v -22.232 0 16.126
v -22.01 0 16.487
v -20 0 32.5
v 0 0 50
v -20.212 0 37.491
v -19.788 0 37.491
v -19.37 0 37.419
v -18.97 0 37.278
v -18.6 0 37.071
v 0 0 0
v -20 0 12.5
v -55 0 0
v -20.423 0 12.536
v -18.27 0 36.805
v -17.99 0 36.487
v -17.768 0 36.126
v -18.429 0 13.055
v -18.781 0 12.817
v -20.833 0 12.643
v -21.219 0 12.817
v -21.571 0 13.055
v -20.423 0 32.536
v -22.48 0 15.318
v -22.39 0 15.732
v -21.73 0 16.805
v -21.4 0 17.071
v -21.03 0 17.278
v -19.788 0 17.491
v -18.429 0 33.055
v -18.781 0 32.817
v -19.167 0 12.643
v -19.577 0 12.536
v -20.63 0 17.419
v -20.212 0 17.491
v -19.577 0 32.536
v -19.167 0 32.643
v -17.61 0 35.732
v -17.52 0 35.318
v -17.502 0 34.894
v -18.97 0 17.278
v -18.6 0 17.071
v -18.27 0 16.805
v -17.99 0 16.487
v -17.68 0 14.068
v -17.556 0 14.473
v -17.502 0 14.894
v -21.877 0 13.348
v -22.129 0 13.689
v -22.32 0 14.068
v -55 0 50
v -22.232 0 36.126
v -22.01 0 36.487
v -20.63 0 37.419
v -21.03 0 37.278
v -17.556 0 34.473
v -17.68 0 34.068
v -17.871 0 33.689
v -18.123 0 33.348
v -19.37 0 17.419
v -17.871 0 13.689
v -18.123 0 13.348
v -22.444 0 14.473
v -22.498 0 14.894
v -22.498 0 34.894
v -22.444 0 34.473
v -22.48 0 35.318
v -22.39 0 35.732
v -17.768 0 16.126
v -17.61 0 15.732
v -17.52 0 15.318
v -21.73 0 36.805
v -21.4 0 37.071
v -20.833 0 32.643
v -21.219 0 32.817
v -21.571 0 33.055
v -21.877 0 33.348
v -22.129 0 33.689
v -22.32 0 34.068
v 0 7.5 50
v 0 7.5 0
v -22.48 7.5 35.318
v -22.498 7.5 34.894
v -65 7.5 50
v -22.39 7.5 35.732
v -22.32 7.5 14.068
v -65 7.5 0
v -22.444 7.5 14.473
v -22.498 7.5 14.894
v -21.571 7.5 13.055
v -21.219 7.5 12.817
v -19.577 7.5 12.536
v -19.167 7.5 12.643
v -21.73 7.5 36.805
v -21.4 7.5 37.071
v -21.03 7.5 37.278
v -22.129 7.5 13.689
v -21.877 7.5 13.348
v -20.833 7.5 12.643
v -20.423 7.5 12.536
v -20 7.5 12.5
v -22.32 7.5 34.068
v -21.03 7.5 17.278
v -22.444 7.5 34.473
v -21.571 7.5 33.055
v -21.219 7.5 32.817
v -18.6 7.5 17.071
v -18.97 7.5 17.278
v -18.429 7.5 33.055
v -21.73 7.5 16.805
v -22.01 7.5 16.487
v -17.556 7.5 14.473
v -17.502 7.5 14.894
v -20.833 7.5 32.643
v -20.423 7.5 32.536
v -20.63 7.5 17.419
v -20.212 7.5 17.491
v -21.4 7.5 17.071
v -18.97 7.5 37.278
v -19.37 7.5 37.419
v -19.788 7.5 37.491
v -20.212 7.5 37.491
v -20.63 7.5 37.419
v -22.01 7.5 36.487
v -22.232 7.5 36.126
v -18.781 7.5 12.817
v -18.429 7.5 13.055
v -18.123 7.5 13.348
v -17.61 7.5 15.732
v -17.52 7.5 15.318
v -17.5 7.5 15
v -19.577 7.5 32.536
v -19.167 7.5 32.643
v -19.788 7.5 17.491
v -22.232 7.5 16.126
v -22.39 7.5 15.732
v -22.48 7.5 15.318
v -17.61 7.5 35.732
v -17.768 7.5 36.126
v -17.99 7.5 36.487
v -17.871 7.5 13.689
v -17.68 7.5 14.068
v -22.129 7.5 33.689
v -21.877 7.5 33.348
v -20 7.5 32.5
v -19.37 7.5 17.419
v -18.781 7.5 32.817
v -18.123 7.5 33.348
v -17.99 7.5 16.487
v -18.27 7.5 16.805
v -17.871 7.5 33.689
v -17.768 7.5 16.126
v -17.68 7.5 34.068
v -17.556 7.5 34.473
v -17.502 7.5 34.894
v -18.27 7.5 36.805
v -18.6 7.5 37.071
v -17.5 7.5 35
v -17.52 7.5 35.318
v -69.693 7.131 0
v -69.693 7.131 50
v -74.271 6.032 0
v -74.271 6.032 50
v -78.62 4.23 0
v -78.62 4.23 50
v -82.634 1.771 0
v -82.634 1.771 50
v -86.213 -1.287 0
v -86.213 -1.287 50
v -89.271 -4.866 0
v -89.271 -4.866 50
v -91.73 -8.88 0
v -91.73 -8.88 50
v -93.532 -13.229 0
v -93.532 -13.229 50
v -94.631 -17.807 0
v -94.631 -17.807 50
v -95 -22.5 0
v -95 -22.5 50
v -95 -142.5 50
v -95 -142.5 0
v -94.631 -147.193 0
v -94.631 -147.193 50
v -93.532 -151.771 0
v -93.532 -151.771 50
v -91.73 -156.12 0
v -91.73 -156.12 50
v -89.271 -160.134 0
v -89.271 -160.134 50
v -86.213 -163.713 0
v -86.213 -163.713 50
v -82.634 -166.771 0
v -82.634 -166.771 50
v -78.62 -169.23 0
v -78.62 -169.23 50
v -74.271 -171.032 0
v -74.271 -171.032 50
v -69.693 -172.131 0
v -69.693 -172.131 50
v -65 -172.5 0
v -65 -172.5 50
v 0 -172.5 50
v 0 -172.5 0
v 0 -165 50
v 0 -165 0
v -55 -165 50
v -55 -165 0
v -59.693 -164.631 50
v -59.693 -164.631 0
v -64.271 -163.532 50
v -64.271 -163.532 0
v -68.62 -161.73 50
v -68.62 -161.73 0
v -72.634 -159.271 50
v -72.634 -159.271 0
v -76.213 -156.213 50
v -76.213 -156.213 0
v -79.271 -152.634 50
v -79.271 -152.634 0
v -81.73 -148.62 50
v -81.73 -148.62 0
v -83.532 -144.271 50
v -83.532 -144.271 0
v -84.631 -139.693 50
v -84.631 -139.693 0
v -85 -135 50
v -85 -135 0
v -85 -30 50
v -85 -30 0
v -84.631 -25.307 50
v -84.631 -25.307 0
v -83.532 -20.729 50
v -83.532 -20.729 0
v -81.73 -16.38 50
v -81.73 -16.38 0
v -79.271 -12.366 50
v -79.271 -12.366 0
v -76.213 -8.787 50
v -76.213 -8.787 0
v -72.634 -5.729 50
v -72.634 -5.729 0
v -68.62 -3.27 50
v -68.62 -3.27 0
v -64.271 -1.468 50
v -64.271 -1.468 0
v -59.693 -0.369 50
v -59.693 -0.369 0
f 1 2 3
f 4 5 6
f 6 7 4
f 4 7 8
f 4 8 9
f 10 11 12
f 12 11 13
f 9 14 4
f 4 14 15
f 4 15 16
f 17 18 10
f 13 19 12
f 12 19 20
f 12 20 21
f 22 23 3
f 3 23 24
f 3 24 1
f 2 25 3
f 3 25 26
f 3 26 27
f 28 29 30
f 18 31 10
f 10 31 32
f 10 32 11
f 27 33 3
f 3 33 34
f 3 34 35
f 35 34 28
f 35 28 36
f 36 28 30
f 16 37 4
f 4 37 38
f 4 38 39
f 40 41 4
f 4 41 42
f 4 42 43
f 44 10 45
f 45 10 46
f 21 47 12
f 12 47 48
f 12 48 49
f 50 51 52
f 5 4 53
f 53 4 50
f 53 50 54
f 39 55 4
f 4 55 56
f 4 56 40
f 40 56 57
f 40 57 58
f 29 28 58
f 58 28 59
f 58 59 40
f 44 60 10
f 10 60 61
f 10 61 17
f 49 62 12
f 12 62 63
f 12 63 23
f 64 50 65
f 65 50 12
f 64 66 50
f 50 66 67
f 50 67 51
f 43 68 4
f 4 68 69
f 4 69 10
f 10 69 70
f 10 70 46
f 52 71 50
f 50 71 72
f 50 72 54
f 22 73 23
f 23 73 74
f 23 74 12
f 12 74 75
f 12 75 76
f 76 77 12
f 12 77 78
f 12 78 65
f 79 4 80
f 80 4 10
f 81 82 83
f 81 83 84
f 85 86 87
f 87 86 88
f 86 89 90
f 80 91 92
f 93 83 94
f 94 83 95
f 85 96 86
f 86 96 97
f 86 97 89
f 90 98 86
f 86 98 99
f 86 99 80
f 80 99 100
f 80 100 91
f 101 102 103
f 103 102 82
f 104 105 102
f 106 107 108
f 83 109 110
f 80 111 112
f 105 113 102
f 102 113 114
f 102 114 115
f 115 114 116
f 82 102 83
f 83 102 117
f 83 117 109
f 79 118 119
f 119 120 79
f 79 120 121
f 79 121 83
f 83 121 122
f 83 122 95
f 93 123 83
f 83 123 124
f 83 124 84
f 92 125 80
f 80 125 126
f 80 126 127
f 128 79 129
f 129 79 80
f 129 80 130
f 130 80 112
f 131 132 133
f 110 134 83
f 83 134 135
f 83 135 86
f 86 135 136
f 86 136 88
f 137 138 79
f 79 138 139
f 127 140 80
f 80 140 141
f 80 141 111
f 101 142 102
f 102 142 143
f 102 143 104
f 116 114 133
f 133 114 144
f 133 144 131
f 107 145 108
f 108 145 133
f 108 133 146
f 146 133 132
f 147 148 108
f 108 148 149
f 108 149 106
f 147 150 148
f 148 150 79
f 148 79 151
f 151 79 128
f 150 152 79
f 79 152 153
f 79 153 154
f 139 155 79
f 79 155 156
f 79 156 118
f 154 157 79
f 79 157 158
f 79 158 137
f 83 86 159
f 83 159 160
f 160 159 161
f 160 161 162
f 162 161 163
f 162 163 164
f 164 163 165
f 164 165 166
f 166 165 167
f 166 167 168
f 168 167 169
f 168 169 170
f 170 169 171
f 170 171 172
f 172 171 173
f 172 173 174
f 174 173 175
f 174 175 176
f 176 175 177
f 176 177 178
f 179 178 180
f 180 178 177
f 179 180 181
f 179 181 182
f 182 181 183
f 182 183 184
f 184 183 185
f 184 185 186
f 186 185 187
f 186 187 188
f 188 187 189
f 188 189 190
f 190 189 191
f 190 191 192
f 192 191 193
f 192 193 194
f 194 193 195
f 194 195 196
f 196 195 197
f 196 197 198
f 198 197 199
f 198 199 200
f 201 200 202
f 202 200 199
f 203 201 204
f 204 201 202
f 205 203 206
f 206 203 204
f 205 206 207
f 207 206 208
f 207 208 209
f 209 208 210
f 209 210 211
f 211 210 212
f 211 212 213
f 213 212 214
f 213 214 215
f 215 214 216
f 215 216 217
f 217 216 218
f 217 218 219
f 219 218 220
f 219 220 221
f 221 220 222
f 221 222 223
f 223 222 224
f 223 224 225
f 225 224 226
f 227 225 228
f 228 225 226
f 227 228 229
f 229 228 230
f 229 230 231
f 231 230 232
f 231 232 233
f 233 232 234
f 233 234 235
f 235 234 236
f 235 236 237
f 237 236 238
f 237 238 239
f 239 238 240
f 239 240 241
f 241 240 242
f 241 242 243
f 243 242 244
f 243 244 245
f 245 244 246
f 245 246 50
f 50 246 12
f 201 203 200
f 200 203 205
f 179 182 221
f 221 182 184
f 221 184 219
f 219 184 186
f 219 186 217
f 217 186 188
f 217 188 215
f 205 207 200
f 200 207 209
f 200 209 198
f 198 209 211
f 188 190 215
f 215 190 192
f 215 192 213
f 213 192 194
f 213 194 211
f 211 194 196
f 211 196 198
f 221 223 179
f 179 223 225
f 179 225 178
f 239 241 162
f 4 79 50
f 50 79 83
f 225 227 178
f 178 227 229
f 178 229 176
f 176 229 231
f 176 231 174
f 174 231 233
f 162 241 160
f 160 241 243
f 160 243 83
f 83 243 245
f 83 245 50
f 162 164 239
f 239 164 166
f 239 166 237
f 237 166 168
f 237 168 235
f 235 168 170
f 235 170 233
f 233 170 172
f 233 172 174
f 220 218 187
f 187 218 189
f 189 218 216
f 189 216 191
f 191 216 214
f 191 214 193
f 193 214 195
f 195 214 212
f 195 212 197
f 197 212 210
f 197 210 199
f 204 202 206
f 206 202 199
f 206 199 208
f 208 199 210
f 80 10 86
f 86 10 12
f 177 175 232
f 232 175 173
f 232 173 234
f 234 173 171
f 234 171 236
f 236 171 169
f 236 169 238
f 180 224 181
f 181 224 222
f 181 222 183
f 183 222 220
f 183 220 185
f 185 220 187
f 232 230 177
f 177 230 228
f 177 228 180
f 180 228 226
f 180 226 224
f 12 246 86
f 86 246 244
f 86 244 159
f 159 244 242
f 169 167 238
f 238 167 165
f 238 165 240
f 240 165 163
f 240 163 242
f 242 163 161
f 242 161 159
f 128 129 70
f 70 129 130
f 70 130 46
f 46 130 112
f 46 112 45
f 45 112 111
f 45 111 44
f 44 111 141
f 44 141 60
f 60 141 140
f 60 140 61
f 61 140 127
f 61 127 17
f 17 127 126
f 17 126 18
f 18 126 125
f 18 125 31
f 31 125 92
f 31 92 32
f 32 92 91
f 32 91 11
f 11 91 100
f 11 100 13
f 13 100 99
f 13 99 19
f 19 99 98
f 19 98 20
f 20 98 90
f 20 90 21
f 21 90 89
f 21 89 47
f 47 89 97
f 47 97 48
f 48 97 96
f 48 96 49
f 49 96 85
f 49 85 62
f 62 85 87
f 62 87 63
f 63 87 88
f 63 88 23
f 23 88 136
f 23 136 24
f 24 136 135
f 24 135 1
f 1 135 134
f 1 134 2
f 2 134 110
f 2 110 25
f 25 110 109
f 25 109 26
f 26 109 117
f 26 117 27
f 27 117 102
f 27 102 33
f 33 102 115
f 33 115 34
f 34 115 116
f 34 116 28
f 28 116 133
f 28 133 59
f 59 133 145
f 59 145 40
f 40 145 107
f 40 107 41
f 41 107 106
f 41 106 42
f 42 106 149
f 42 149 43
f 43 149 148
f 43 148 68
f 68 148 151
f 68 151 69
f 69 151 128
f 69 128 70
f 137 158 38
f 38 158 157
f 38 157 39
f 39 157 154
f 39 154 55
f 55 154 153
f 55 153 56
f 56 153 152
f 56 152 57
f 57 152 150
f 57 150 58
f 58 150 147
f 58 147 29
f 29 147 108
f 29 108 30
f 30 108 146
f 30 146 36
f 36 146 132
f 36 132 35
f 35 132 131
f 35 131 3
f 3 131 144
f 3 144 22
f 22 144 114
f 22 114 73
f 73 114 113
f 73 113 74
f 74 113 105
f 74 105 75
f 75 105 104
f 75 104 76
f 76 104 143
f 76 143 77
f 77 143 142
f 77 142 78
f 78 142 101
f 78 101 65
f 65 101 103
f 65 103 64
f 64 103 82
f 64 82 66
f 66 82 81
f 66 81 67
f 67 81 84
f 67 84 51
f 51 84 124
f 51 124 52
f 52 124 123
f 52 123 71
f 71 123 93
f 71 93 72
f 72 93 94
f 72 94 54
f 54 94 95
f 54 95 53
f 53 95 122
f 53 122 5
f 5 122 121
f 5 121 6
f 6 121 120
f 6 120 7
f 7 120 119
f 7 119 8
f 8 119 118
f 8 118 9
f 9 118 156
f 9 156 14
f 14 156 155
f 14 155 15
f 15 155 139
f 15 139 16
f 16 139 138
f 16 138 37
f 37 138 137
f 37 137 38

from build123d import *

# Parameters (mm, degrees)
BOSS_EXTRUDE1_DEPTH = 50
SKETCH3_R           = 2.5
CUT_EXTRUDE1_DEPTH  = 24


with BuildPart() as part:
    # Sketch1 → Boss-Extrude1 (new body)
    with BuildSketch(Plane.XY):
        with BuildLine():
            Line((-20, -165), (0, -165))
            Line((0, -165), (0, -172.5))
            Line((0, -172.5), (-51.3765108, -172.5))
            Line((-51.3765108, -172.5), (-65, -172.5))
            ThreePointArc((-65, -172.5), (-86.213203436, -163.713203436), (-95, -142.5))
            Line((-95, -142.5), (-95, -22.5))
            ThreePointArc((-95, -22.5), (-86.213203436, -1.286796564), (-65, 7.5))
            Line((-65, 7.5), (-55, 7.5))
            Line((-55, 7.5), (0, 7.5))
            Line((0, 7.5), (0, 0))
            Line((0, 0), (-55, 0))
            ThreePointArc((-55, 0), (-76.213203436, -8.786796564), (-85, -30))
            Line((-85, -30), (-85, -135))
            ThreePointArc((-85, -135), (-76.213203436, -156.213203436), (-55, -165))
            Line((-55, -165), (-20, -165))
        make_face()
    extrude(amount=BOSS_EXTRUDE1_DEPTH)

    # Sketch3 → Cut-Extrude1 (cut)
    with BuildSketch(Plane.XZ):
        with Locations(Location((-20, 35, 0), (0, 0, 270))):
            Circle(SKETCH3_R)
        with Locations(Location((-20, 15, 0), (0, 0, 270))):
            Circle(SKETCH3_R)
    extrude(amount=-CUT_EXTRUDE1_DEPTH, mode=Mode.SUBTRACT)


solid = part.part
